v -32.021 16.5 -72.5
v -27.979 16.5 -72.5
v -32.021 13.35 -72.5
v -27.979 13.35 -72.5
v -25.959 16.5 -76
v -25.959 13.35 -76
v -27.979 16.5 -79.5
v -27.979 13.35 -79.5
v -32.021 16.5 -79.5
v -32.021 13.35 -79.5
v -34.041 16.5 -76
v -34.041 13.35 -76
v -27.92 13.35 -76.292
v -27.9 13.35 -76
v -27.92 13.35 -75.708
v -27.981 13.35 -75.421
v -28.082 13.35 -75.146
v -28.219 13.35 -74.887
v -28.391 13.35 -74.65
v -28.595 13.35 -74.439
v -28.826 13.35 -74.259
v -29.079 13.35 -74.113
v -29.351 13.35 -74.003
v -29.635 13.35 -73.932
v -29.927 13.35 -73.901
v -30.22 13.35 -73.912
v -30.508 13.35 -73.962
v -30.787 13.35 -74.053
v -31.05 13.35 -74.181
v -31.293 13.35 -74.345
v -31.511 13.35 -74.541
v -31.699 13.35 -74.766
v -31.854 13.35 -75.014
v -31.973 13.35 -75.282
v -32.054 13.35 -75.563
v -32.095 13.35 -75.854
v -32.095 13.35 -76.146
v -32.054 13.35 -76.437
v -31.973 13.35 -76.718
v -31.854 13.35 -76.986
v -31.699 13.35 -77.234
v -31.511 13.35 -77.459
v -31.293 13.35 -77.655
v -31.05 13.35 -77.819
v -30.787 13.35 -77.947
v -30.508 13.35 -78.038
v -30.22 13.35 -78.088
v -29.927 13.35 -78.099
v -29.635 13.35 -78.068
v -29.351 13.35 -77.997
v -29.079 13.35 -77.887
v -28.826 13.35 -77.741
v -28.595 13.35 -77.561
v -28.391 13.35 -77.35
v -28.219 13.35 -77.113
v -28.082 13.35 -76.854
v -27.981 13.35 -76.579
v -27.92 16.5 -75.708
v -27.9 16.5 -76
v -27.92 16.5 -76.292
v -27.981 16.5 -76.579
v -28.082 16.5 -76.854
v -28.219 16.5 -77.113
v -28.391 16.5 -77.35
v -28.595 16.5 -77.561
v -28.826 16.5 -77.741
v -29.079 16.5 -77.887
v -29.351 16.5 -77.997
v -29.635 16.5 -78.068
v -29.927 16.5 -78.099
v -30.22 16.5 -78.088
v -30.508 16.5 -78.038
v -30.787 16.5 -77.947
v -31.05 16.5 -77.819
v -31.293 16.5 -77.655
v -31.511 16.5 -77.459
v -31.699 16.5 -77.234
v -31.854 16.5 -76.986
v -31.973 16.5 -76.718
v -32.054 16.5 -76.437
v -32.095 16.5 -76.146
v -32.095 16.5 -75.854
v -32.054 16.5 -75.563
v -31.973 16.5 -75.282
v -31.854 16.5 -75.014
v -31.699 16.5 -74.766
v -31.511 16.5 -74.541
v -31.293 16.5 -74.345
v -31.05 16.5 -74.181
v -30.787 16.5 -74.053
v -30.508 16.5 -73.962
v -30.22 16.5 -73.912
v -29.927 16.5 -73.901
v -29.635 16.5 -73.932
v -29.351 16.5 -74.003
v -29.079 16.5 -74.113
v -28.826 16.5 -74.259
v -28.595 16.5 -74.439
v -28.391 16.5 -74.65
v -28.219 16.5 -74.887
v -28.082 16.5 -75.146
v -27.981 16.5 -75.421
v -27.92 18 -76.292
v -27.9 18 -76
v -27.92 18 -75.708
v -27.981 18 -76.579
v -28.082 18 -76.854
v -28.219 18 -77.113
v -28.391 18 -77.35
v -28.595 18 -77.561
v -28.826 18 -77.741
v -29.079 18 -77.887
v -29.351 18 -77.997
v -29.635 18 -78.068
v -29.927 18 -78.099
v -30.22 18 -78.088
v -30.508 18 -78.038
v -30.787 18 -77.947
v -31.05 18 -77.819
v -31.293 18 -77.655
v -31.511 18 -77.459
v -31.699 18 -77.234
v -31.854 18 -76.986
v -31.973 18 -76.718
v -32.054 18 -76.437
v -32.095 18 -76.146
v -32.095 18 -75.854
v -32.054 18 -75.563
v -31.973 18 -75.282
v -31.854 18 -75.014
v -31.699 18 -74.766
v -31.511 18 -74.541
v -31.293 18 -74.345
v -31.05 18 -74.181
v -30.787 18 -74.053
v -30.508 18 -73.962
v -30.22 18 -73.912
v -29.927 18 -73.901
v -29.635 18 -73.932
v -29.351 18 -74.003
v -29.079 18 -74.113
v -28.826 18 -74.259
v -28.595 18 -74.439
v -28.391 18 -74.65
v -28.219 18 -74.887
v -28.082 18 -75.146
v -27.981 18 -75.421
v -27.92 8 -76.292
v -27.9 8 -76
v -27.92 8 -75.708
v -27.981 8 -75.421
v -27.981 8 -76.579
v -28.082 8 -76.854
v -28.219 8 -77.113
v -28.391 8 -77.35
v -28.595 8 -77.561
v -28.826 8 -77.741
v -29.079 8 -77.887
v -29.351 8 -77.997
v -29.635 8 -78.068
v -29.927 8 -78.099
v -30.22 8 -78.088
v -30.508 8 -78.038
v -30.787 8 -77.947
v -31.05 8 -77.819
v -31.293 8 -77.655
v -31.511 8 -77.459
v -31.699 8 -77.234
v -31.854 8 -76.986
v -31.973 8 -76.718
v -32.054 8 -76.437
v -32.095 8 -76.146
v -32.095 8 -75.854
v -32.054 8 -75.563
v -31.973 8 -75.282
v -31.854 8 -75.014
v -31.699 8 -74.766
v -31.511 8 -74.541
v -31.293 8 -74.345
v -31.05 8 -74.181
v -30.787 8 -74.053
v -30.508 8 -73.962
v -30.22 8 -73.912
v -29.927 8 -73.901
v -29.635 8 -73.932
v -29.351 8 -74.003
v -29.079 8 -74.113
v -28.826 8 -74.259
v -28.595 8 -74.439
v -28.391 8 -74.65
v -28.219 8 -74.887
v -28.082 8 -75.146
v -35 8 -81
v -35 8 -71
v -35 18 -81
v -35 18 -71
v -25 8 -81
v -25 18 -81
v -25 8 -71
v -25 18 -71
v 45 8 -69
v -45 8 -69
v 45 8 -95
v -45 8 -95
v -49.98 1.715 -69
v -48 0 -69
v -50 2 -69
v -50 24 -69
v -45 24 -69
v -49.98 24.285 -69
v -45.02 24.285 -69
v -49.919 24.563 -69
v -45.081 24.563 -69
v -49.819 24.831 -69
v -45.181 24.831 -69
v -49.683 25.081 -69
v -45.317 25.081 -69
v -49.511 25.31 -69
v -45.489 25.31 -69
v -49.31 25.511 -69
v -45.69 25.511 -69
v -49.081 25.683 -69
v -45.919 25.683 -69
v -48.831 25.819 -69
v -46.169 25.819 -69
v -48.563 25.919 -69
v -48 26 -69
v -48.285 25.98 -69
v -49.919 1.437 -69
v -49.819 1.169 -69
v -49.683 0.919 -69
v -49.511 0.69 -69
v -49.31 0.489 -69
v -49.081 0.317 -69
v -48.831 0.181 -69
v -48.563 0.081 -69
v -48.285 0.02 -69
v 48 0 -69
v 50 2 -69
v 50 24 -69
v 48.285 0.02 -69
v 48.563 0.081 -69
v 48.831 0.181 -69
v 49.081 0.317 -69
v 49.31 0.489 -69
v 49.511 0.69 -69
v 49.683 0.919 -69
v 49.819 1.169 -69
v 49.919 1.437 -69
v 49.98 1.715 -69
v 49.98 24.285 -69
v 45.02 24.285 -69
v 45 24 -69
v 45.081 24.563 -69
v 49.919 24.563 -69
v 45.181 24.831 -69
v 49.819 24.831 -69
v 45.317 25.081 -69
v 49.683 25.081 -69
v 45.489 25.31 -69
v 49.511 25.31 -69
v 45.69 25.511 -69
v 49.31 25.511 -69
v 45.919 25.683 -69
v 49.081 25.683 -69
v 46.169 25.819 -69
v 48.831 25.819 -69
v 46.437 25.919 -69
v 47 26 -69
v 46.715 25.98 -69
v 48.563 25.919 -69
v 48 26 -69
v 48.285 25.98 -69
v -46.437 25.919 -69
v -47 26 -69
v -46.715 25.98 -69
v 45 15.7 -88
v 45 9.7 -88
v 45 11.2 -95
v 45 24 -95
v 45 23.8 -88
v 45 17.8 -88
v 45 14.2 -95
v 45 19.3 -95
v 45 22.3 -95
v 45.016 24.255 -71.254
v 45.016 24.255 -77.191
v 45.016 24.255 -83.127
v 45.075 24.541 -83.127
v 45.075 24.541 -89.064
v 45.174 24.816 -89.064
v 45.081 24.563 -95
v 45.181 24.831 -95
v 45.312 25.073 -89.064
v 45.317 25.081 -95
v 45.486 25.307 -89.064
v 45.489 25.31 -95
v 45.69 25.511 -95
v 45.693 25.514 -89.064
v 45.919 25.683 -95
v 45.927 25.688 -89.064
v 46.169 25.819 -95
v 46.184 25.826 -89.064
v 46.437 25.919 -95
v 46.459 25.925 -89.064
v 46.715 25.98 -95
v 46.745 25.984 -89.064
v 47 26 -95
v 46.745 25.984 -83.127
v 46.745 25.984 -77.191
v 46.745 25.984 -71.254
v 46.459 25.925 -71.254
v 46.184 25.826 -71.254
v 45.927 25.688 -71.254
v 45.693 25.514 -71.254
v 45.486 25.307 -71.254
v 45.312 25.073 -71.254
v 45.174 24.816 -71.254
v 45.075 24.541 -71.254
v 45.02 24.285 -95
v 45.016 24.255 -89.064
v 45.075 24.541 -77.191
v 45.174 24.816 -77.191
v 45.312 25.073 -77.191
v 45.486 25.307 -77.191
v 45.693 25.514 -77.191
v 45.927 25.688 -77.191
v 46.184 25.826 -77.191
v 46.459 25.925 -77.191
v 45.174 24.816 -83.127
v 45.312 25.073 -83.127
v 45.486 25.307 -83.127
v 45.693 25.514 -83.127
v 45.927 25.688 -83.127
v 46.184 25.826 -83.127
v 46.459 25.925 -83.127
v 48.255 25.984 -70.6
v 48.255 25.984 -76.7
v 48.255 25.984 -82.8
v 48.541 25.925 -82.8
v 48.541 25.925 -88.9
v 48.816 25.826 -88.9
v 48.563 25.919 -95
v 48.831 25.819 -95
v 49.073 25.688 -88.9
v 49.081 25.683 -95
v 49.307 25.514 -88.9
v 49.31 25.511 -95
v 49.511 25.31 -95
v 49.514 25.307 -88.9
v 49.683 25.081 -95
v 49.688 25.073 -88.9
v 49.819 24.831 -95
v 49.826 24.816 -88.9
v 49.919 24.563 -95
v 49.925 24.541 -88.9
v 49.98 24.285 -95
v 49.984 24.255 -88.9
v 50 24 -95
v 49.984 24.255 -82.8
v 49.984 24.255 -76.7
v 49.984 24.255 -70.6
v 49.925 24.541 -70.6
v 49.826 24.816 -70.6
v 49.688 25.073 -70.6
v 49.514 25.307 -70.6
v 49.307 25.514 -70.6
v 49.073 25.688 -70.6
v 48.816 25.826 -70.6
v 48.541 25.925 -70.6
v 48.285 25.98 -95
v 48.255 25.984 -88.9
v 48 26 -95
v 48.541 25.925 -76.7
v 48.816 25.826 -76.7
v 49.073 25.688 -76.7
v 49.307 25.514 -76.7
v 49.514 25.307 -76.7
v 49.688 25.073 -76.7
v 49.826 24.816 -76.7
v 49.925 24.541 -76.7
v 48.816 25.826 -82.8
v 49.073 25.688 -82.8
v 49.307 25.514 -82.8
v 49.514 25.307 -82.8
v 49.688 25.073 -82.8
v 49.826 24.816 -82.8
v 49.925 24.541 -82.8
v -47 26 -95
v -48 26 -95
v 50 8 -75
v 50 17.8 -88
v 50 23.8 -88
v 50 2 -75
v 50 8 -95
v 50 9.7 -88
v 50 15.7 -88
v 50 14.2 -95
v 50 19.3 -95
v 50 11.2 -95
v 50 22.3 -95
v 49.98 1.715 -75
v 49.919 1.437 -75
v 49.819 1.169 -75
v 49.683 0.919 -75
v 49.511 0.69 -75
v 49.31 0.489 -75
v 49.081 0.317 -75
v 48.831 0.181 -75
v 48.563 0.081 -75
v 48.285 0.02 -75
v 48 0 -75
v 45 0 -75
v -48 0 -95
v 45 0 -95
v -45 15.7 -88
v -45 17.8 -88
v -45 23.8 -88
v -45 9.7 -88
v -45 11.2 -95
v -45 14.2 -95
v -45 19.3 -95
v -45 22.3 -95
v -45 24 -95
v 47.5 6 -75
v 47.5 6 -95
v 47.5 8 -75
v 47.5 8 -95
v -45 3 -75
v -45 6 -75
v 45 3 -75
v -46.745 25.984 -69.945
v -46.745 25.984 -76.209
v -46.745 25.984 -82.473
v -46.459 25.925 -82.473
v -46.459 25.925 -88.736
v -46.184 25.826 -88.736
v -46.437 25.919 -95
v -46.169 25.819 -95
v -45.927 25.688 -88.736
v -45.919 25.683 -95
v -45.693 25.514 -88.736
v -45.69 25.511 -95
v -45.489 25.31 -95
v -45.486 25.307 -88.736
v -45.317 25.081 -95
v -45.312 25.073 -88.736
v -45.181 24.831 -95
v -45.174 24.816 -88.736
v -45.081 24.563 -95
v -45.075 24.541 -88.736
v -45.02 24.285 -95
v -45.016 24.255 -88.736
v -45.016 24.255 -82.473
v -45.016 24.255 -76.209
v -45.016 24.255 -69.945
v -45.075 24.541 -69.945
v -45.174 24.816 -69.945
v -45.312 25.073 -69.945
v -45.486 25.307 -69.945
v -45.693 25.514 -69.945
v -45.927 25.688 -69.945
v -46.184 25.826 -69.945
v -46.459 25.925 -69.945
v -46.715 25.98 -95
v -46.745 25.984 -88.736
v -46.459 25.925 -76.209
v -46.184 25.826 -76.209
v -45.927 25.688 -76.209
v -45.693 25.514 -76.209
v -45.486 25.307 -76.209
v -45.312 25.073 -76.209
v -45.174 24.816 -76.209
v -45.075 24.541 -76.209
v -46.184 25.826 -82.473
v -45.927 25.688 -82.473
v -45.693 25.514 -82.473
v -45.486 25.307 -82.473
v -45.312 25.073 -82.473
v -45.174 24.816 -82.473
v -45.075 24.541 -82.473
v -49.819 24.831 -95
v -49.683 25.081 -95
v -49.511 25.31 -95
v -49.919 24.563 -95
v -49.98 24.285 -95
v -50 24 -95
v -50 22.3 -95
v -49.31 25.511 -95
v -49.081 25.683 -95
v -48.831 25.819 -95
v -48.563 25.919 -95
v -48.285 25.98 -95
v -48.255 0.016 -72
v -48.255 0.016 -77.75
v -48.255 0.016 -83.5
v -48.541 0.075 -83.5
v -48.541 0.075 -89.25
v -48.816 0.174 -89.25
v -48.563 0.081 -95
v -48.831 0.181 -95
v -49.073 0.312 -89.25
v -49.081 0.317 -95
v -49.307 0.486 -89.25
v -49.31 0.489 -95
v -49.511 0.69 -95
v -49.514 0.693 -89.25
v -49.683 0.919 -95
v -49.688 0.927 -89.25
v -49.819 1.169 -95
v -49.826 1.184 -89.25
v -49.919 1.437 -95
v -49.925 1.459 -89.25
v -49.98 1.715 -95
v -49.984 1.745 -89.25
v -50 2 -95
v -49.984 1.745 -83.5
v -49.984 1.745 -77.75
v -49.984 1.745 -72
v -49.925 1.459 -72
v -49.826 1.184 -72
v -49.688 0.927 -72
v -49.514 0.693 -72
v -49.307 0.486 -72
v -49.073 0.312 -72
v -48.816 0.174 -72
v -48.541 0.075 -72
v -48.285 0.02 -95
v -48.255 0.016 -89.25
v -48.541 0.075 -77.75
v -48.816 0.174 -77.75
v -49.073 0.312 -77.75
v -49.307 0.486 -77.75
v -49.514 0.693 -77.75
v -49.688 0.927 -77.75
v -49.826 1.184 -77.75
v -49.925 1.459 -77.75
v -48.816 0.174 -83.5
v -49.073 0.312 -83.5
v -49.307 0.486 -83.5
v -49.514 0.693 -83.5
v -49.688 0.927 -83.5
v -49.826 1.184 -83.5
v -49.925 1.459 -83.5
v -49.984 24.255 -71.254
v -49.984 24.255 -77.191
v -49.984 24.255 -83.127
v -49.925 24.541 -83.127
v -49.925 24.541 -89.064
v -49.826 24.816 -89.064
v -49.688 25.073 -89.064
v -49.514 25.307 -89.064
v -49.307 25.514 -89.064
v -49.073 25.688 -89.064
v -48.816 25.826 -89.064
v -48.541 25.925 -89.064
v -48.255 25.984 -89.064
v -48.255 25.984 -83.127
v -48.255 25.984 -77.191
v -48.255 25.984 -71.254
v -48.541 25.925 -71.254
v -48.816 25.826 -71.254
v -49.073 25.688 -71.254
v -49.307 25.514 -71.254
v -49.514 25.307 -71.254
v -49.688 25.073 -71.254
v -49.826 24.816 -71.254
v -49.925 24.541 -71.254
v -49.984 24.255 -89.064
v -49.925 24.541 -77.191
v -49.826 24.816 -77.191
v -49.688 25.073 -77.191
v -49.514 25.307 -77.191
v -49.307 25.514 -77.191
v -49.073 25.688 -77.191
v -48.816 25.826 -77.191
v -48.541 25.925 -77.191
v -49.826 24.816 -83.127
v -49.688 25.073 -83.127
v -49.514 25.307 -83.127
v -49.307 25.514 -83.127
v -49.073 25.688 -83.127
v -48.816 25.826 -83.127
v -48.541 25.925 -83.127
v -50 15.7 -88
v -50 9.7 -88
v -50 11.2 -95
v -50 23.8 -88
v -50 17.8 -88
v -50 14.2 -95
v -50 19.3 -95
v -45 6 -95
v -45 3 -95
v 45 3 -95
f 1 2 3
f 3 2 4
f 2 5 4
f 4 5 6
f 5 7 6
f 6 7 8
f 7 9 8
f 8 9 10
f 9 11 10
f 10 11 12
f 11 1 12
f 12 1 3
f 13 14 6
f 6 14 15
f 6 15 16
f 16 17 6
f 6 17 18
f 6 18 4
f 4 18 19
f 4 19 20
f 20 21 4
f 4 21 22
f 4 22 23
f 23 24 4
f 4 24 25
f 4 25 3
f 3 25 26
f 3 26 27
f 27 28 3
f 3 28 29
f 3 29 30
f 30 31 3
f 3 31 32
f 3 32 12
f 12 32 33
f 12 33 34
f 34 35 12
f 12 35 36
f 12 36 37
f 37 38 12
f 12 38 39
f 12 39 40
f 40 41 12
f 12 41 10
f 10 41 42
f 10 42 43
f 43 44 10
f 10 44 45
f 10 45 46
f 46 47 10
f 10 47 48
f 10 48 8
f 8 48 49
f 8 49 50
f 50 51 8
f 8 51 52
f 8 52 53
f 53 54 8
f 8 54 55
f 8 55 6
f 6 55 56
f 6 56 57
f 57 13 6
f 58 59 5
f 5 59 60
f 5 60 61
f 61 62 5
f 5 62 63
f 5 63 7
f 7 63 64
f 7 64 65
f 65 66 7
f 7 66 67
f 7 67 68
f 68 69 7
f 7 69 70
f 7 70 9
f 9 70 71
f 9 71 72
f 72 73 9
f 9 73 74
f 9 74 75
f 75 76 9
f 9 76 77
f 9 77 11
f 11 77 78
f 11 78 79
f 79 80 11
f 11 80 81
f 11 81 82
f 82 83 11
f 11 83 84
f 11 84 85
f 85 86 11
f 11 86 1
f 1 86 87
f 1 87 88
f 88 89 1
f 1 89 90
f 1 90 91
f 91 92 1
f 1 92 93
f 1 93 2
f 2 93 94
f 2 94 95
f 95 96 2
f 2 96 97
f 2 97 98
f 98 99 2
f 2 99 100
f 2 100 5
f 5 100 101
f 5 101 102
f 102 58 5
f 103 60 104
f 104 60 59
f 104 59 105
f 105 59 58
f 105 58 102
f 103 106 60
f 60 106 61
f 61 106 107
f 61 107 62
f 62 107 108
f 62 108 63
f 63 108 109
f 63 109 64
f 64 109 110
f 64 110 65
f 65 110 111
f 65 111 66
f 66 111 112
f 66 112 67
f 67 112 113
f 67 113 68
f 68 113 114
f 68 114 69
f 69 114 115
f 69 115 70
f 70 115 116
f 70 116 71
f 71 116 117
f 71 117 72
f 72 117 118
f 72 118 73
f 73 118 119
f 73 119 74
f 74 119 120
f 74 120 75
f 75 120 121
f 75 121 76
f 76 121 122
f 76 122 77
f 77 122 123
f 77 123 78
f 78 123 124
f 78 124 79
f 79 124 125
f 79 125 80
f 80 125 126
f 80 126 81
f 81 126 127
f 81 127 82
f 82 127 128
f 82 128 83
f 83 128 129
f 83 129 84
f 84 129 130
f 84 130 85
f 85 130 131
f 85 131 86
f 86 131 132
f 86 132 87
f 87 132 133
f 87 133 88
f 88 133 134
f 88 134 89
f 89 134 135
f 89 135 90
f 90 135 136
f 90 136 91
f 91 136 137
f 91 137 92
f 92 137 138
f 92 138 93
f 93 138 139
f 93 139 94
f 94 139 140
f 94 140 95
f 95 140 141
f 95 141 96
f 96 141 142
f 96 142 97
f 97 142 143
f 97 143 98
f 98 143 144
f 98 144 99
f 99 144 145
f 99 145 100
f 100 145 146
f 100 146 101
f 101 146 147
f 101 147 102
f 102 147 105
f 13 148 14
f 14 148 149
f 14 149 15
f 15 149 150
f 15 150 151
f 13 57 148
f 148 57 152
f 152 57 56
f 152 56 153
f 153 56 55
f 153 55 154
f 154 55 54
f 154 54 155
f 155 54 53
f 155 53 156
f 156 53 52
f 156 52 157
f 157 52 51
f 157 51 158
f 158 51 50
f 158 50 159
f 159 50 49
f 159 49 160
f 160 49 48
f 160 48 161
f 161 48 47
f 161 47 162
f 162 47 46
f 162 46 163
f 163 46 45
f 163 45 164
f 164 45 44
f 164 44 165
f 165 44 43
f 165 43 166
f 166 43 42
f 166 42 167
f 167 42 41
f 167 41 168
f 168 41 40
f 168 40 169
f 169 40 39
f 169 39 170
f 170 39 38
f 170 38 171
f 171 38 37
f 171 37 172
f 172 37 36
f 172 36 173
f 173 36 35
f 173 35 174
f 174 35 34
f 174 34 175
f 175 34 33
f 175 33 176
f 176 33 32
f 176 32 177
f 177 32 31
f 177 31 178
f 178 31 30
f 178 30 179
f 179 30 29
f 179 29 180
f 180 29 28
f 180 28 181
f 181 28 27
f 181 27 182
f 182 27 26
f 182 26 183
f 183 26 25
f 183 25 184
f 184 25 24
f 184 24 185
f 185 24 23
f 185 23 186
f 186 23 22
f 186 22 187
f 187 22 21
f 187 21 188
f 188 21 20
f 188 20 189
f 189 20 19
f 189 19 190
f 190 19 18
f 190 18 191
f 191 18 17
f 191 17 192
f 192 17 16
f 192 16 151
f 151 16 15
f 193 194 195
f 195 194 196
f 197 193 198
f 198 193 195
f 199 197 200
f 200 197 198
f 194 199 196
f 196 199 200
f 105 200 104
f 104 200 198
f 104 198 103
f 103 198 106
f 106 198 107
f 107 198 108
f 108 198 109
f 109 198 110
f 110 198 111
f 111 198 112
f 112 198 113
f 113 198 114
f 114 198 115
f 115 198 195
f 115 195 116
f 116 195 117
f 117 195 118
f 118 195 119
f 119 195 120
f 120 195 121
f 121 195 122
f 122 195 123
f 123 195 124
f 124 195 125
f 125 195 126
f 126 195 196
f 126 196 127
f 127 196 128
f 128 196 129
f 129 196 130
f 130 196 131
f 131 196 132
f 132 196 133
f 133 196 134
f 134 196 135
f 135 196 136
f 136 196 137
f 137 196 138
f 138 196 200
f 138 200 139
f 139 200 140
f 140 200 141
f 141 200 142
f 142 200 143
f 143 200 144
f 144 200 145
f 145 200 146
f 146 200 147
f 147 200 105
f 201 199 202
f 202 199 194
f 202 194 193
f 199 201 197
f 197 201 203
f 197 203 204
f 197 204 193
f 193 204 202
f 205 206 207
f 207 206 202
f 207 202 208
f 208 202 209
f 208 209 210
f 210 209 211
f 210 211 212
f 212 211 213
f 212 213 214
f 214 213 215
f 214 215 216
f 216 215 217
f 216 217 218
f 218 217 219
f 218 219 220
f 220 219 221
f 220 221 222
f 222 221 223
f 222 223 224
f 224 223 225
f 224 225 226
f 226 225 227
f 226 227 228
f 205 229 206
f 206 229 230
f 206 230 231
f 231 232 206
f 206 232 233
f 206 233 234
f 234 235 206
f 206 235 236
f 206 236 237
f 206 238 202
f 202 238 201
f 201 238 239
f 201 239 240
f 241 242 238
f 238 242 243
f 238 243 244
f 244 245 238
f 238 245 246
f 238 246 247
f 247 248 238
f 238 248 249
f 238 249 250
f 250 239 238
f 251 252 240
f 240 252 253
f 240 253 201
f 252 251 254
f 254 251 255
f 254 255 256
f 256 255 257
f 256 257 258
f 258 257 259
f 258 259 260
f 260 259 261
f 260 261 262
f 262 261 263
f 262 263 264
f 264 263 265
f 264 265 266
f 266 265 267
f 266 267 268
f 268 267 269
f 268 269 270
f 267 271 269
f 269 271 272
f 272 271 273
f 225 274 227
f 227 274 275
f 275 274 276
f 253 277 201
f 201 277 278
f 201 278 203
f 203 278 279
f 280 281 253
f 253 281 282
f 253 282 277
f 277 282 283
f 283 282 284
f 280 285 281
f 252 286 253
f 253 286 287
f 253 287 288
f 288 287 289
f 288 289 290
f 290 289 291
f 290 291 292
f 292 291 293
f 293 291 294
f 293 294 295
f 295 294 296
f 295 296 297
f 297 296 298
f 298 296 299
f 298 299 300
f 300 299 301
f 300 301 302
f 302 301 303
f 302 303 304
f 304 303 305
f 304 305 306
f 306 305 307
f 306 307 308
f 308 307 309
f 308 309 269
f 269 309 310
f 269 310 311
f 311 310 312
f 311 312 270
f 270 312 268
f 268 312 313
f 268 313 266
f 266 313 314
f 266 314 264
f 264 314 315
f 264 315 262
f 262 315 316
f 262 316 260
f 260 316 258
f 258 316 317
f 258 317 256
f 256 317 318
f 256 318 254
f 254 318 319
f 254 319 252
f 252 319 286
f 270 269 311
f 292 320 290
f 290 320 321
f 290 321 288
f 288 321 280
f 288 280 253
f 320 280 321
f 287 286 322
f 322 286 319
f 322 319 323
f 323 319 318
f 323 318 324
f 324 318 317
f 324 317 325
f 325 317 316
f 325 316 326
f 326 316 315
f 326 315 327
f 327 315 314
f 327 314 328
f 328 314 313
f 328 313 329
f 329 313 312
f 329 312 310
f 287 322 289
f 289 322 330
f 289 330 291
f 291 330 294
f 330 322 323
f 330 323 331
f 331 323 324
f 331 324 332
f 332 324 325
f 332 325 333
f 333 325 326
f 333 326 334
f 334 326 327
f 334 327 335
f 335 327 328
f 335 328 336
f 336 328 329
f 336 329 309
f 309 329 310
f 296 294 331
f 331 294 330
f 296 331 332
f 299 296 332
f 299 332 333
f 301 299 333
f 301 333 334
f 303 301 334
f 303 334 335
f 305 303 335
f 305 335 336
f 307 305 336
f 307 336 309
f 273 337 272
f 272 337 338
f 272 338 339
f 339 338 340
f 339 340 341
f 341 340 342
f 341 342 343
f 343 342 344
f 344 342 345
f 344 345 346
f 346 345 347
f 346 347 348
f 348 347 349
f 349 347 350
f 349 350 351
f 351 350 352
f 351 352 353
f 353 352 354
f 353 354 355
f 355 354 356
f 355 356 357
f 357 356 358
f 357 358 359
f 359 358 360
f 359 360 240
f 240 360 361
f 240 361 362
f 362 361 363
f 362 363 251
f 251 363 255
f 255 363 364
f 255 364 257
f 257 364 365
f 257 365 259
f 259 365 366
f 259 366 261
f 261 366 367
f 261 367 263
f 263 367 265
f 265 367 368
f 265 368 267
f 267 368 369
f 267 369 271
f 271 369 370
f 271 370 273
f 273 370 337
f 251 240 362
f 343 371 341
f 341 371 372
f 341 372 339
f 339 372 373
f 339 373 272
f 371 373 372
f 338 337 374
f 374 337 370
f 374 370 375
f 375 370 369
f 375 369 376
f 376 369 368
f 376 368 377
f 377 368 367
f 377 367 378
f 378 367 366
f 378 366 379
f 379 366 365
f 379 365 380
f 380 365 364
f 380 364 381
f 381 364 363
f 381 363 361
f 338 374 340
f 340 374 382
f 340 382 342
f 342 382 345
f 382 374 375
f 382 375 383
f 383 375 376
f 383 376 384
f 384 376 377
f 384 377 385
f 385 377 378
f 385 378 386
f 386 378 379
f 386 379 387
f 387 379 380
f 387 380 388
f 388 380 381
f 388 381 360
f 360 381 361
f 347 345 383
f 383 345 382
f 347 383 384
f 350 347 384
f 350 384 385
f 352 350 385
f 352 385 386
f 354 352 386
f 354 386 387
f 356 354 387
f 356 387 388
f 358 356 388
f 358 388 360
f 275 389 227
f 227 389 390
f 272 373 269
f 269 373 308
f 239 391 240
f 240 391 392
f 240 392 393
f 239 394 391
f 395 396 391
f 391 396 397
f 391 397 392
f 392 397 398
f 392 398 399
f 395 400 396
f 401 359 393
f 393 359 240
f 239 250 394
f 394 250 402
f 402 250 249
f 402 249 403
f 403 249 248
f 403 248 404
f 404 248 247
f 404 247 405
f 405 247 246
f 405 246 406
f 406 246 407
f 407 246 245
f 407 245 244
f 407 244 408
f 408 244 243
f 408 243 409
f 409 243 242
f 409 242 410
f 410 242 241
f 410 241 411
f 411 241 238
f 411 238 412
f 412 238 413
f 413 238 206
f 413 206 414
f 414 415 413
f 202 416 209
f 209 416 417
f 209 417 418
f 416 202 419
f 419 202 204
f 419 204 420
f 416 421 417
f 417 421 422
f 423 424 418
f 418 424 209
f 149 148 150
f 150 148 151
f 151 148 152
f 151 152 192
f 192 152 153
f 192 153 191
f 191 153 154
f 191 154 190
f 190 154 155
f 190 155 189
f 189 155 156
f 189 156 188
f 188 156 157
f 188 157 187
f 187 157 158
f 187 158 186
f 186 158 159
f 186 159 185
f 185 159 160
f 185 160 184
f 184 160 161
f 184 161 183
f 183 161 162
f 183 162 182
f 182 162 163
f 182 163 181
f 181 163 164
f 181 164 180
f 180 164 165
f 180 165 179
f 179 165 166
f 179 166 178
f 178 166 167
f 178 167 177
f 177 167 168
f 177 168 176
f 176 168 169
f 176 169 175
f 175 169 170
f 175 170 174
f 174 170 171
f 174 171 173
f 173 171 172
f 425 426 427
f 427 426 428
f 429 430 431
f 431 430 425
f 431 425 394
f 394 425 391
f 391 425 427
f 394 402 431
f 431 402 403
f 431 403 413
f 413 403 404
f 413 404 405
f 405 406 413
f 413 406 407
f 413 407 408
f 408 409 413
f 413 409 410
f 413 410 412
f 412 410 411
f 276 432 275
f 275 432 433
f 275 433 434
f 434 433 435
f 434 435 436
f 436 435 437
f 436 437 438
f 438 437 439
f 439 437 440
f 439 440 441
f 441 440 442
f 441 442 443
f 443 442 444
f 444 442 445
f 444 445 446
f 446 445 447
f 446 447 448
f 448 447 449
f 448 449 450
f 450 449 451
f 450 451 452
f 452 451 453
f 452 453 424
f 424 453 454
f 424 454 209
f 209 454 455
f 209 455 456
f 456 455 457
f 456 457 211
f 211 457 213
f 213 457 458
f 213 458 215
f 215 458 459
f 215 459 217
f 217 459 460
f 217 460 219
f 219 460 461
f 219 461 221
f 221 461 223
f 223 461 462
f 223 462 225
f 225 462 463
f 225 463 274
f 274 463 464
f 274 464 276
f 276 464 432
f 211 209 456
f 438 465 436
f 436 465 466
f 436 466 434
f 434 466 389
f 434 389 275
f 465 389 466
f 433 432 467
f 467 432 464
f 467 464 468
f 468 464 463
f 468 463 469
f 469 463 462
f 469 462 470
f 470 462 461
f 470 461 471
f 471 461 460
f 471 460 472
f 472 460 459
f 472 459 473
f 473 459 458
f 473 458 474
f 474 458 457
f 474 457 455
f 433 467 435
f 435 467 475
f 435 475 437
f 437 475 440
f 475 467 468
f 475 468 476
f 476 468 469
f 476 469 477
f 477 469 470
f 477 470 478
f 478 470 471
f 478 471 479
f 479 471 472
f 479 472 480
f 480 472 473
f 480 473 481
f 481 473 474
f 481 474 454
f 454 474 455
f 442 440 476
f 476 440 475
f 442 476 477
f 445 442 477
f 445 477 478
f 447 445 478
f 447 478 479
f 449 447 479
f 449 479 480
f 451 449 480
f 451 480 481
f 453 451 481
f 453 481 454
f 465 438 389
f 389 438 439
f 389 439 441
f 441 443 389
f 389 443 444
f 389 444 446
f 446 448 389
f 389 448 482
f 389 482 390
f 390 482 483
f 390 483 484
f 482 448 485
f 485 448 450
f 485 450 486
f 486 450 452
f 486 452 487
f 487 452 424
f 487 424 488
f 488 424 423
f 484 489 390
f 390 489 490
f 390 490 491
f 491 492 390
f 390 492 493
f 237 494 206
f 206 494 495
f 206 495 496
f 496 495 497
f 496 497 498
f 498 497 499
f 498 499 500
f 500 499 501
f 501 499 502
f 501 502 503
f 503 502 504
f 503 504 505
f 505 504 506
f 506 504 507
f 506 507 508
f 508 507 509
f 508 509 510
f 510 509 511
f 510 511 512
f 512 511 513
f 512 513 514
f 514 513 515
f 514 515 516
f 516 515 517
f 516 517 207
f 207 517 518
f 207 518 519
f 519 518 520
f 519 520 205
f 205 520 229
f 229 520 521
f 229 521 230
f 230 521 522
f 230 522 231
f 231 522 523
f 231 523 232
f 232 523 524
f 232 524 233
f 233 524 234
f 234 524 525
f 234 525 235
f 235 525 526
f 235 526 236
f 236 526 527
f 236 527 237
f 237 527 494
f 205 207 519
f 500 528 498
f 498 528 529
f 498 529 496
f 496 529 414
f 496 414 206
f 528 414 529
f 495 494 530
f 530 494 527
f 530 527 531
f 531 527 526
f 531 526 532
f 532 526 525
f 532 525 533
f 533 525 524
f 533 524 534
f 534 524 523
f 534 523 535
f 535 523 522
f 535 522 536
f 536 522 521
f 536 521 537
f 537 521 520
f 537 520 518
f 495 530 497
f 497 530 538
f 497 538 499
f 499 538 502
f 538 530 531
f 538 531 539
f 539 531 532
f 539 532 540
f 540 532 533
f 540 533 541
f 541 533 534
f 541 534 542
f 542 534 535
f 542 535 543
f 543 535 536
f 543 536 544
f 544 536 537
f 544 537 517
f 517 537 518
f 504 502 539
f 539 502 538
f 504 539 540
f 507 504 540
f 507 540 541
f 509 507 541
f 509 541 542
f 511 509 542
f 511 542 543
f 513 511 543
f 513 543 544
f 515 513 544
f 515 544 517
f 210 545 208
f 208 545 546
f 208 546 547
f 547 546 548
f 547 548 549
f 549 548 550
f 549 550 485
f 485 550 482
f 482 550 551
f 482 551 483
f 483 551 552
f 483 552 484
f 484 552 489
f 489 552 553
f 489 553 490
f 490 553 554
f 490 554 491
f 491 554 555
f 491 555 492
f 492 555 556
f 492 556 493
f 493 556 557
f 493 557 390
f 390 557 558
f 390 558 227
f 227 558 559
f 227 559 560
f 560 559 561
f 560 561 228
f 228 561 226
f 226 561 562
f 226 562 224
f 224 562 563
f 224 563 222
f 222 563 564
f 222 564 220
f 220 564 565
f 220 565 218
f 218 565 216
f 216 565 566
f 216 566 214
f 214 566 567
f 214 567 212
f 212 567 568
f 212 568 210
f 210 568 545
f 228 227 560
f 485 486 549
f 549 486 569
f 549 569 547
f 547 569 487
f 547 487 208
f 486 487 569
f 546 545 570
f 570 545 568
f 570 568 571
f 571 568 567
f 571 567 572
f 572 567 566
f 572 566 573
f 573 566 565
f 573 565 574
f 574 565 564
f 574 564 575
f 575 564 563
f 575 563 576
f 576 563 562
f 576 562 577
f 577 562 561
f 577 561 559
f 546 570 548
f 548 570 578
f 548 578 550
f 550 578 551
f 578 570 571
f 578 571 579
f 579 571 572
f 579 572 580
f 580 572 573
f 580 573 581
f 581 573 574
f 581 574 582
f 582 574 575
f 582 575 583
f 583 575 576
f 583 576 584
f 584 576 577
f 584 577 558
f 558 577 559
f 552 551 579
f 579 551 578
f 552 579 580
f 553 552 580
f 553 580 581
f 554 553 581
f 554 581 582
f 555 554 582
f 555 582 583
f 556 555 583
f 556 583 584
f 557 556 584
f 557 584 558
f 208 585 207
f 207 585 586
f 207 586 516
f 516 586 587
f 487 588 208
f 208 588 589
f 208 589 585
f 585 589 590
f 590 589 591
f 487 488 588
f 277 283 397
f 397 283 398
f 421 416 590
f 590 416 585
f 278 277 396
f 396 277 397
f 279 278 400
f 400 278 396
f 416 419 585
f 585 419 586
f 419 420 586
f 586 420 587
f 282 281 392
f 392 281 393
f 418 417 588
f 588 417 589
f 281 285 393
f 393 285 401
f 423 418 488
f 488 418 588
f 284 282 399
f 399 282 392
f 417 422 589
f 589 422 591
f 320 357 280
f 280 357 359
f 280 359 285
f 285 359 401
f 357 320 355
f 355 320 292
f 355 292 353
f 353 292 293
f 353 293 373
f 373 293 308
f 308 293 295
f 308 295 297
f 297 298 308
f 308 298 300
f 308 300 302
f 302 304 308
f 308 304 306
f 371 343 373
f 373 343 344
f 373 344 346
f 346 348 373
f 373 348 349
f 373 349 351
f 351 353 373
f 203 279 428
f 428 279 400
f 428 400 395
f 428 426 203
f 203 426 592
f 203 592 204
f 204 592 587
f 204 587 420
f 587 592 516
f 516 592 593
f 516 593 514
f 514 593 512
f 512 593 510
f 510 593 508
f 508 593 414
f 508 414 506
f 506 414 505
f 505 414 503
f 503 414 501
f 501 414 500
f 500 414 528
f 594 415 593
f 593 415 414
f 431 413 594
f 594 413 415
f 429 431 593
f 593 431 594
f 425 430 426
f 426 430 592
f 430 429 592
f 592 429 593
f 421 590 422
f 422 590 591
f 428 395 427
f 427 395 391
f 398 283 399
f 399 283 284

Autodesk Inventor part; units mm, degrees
sketch "Sketch1" plane through (0, 0, 0) normal (0, 1, 0) x (-1, 0, 0)
  line L0 (-50, 75) -> (50, 75)
  line L1 (50, 75) -> (50, -75)
  line L2 (50, -75) -> (-50, -75)
  line L3 (-50, -75) -> (-50, 75)
  line L4 (-50, 75) -> (50, -75) construction
  line L5 (50, 75) -> (-50, -75) construction
  point P0 (0, 0)
  dimension "d0" = 100
  dimension "d1" = 150
extrude "Extrusion1" add sketch "Sketch1" along normal blind 8
sketch "Sketch3" plane through (0, 8, 0) normal (0, 1, 0) x (1, 0, 0)
  line L0 (-50, -75) -> (50, -75) projected
  line L1 (50, -75) -> (50, 75) projected
  line L2 (50, 75) -> (-50, 75) projected
  line L3 (-50, 75) -> (-50, -75) projected
  line L4 (45, 75) -> (45, -70)
  line L5 (-50, -75) -> (50, -75) projected
  line L6 (50, -75) -> (50, 75) projected
  line L7 (0, 0) -> (0, -83) construction
  line L8 (-45, 75) -> (-45, -70)
  line L9 (45, -70) -> (-45, -70)
  dimension "d4" = 5
  dimension "d5" = 5
extrude "Extrusion2" add sketch "Sketch3" along normal blind 18 contours L3 L2 L8 L9 L4 L1 L0
sketch "Sketch4" plane through (50, 0, -75) normal (0, 0, -1) x (-1, 0, 0)
  line L0 (100, 0) -> (0, 0) projected
  line L1 (100, 0) -> (100, 26) projected
  line L2 (95, 26) -> (100, 26) projected
  line L3 (95, 8) -> (95, 26) projected
  line L4 (5, 8) -> (95, 8) projected
  line L5 (5, 8) -> (5, 26) projected
  line L6 (0, 26) -> (5, 26) projected
  line L7 (0, 0) -> (0, 26) projected
  line L8 (95, 8) -> (5, 8) projected
  line L9 (5, 8) -> (5, 0)
  line L10 (95, 8) -> (95, 0)
  line L11 (0, 0) -> (100, 0) projected
  line L12 (0, 0) -> (0, 26) projected
  line L13 (5, 3) -> (95, 3)
  line L14 (5, 8) -> (95, 8) projected
  line L15 (5, 6) -> (95, 6)
  line L16 (5, 8) -> (0, 8)
  line L17 (100, 0) -> (0, 0) projected
  point P0 (50, 0)
  dimension "d8" = 3
  dimension "d9" = 3
extrude "Extrusion3" add sketch "Sketch4" along normal blind 20 contours L0 L10 L3 L2 L1 | L0 L9 L13 L10 | L15 L9 L4 L10 | L7 L6 L5 L16
sketch "Sketch6" plane through (50, 0, 75) normal (1, 0, 0) x (0, 0, -1)
  line L0 (150, 0) -> (150, 8)
  line L1 (170, 26) -> (170, 8)
  line L2 (0, 0) -> (0, 26) projected
  line L3 (150, 8) -> (170, 8)
  line L4 (170, 26) -> (170, 8) projected
  line L5 (170, 11.2) -> (163, 9.7)
  line L6 (163, 9.7) -> (163, 15.7)
  line L7 (163, 15.7) -> (170, 14.2)
  line L8 (170, 19.3) -> (163, 17.8)
  line L9 (163, 17.8) -> (163, 23.8)
  line L10 (163, 23.8) -> (170, 22.3)
  line L11 (170, 22.3) -> (170, 19.3)
  line L12 (170, 14.2) -> (170, 11.2)
  point P0 (75, 0)
  dimension "d14" = 3
  dimension "d15" = 7
  dimension "d16" = 1.5
  dimension "d17" = 1.5
  dimension "d18" = 3
  dimension "d19" = 1.5
  dimension "d20" = 1.5
  dimension "d21" = 5.1
  dimension "d22" = 7
  dimension "d36" = 1.7
extrude "Extrusion4" cut sketch "Sketch6" against normal through all
fillet "Fillet1" radius 2 11 edges at (50, 0, 0) (50, 26, -10) (50, 13, 75) (0, 26, 75) (0, 0, 75) (-50, 26, -10) (-50, 13, 75) (-50, 0, -10) (45, 26, -12.5) (-45, 26, -12.5) (0, 26, 70)
sketch "Sketch11" plane through (-50, 9.7, -88) normal (-1, 0, 0) x (0, 0, 1)
  line L0 (9, 17.5) -> (0, 19.5) projected
  line L1 (0, 19.5) -> (0, 11.5) projected
  line L2 (0, 11.5) -> (9, 14) projected
  line L3 (9, 17.5) -> (9, 14) projected
  line L4 (9, 6) -> (0, 8.5) projected
  line L5 (0, 0) -> (9, 2.5) projected
  line L6 (0, 6) -> (0, 0) projected
  line L7 (9, 6) -> (9, 2.5) projected
  point P0 (88, -9.7)
sketch "Sketch12" plane through (-50, 2, 73) normal (-1, 0, 0) x (0, 0, 1)
  line L0 (-168, 28) -> (-168, 20)
  line L1 (-159, 26) -> (-168, 28)
  line L2 (-159, 26) -> (-159, 22.5)
  line L3 (-168, 20) -> (-159, 22.5)
  line L4 (-168, 17) -> (-168, 8.5)
  line L5 (-159, 14.5) -> (-168, 17)
  line L6 (-159, 14.5) -> (-159, 11)
  line L7 (-168, 8.5) -> (-159, 11)
  line L8 (-168, 0) -> (-168, 22) projected
  line L9 (-161, 19.2) -> (-161, 27.2) projected
  line L10 (-161, 27.2) -> (-168, 27.2)
  line L11 (-168, 22) -> (-168, 6) projected
  line L12 (-159, 17) -> (-168, 17)
  point P0 (-73, -2)
sketch "Sketch15" plane through (45, 6, -75) normal (1, 0, 0) x (0, 0, -1)
  line L0 (0, 0) -> (0, 2) projected
  line L1 (0, 0) -> (20, 0) projected
  line L2 (20, 2) -> (20, 0) projected
  line L3 (0, 2) -> (20, 2) projected
  point P0 (-75, -6)
extrude "Extrusion8" add sketch "Sketch15" along normal blind 2.5
sketch "Sketch16" plane through (0, 8, 0) normal (0, 1, 0) x (1, 0, 0)
  line L0 (-45, -35) -> (-37, -35)
  line L1 (-37, -35) -> (-37, -15)
  line L2 (-37, -15) -> (-45, -15)
  line L3 (-45, -15) -> (-45, -35)
  line L4 (45, -70) -> (-45, -70) projected
  line L5 (-45, -70) -> (-45, 95) projected
  line L6 (32, -70) -> (45, -70)
  line L7 (45, -70) -> (45, -45)
  line L8 (45, -45) -> (32, -45)
  line L9 (32, -45) -> (32, -70)
  line L10 (45, 95) -> (45, -70) projected
  point P0 (0, 0)
  dimension "d39" = 35
  dimension "d40" = 0
  dimension "d41" = 8
  dimension "d42" = 20
  dimension "d43" = 0
  dimension "d44" = 0
  dimension "d45" = 25
  dimension "d46" = 13
extrude "Extrusion9" add sketch "Sketch16" along normal blind 16
fillet "Fillet4" radius 1 8 edges at (32, 24, 57.5) (38.5, 24, 45) (32, 16, 45) (-37, 24, 25) (-37, 16, 15) (-41, 24, 35) (-41, 24, 15) (-37, 16, 35)
sketch "Sketch17" plane through (0, 24, 0) normal (0, 1, 0) x (1, 0, 0)
  circle A0 centre (-41.5, -25) radius 2.1
  line L0 (-45, -34) -> (-45, -16) projected
  line L1 (-38, -34) -> (-45, -34) projected
  circle A1 centre (39, -58) radius 2.1
  line L2 (33, -70) -> (33, -46) projected
  line L3 (33, -46) -> (45, -46) projected
  point P0 (0, 0)
  dimension "d50" = 4.2
  dimension "d51" = 3.5
  dimension "d52" = 9
  dimension "d53" = 4.2
  dimension "d54" = 6
  dimension "d55" = 12
extrude "Extrusion10" cut sketch "Sketch17" against normal blind 8
sketch "Sketch18" plane through (-45, 9.7, -88) normal (1, 0, 0) x (0, 0, -1)
  circle A0 centre (-58, 11.3) radius 2.15
  circle A1 centre (-27.2, 11.3) radius 2.15
  line L0 (0, 8.1) -> (0, 14.1) projected
  line L1 (-27.2, 11.3) -> (-58, 11.3)
  line L2 (7, 16.3) -> (-160, 16.3) projected
  line L3 (-158, -1.7) -> (-158, 14.3) projected
  point P0 (-88, -9.7)
  dimension "d60" = 4.3
  dimension "d61" = 4.3
  dimension "d62" = 30.8
  dimension "d64" = 5
  dimension "d67" = 100
extrude "Extrusion11" cut sketch "Sketch18" against normal through all
sketch "Sketch19" plane through (0, 24, 0) normal (0, 1, 0) x (1, 0, 0)
  circle A0 centre (-41.5, -25) radius 2.1 projected
  line L0 (-42, -22) -> (-39.1519, -23.067)
  line L1 (-39.1519, -23.067) -> (-38.6519, -26.067)
  line L2 (-38.6519, -26.067) -> (-41, -28)
  line L3 (-41, -28) -> (-43.8481, -26.933)
  line L4 (-43.8481, -26.933) -> (-44.3481, -23.933)
  line L5 (-44.3481, -23.933) -> (-42, -22)
  point P0 (0, 0)
ref_plane "Work Plane2" through (0, 18, 0) normal (0, 1, 0) x (1, 0, 0)
ref_plane "Work Plane1" through (0, 20, 0) normal (0, 1, 0) x (1, 0, 0)
extrude "Extrusion12" cut sketch "Sketch19" against normal up to surface (2 mm away) from surface at -4
ref_plane "Work Plane3" through (50, 0, -69) normal (0, 0, -1) x (-1, 0, 0)
sketch "Sketch20" plane through (50, 0, -69) normal (0, 0, -1) x (-1, 0, 0)
  line L0 (-27, 40) -> (133, 40)
  line L1 (133, 40) -> (133, -17)
  line L2 (133, -17) -> (-27, -17)
  line L3 (-27, -17) -> (-27, 40)
  point P0 (50, 0)
extrude "Extrusion13" cut sketch "Sketch20" against normal through all
sketch "Sketch21" plane through (0, 8, 0) normal (0, 1, 0) x (1, 0, 0)
  line L0 (-25, 71) -> (-35, 71)
  line L1 (-35, 71) -> (-35, 81)
  line L2 (-35, 81) -> (-25, 81)
  line L3 (-25, 81) -> (-25, 71)
  circle A0 centre (-30, 76) radius 2.1
  line L4 (-70, 69) -> (70, 69) projected
  line L5 (-45, 69) -> (-45, 95) projected
  point P0 (0, 0)
  dimension "d76" = 4.2
  dimension "d77" = 2
  dimension "d78" = 10
  dimension "d79" = 5
  dimension "d80" = 10
  dimension "d81" = 10
  dimension "d82" = 5
extrude "Extrusion14" add sketch "Sketch21" along normal blind 10
ref_plane "Work Plane4" through (0, 16.5, 0) normal (0, 1, 0) x (1, 0, 0)
sketch "Sketch22" plane through (0, 16.5, 0) normal (0, 1, 0) x (1, 0, 0)
  line L0 (-32.0207, 72.5) -> (-34.0415, 76)
  line L1 (-34.0415, 76) -> (-32.0207, 79.5)
  line L2 (-32.0207, 79.5) -> (-27.9793, 79.5)
  line L3 (-27.9793, 79.5) -> (-25.9585, 76)
  line L4 (-25.9585, 76) -> (-27.9793, 72.5)
  line L5 (-27.9793, 72.5) -> (-32.0207, 72.5)
  point P0 (0, 0)
  point P1 (-30, 76)
  dimension "d88" = 7
extrude "Extrusion15" cut sketch "Sketch22" against normal blind 3.15
properties part number "Prova A1"
